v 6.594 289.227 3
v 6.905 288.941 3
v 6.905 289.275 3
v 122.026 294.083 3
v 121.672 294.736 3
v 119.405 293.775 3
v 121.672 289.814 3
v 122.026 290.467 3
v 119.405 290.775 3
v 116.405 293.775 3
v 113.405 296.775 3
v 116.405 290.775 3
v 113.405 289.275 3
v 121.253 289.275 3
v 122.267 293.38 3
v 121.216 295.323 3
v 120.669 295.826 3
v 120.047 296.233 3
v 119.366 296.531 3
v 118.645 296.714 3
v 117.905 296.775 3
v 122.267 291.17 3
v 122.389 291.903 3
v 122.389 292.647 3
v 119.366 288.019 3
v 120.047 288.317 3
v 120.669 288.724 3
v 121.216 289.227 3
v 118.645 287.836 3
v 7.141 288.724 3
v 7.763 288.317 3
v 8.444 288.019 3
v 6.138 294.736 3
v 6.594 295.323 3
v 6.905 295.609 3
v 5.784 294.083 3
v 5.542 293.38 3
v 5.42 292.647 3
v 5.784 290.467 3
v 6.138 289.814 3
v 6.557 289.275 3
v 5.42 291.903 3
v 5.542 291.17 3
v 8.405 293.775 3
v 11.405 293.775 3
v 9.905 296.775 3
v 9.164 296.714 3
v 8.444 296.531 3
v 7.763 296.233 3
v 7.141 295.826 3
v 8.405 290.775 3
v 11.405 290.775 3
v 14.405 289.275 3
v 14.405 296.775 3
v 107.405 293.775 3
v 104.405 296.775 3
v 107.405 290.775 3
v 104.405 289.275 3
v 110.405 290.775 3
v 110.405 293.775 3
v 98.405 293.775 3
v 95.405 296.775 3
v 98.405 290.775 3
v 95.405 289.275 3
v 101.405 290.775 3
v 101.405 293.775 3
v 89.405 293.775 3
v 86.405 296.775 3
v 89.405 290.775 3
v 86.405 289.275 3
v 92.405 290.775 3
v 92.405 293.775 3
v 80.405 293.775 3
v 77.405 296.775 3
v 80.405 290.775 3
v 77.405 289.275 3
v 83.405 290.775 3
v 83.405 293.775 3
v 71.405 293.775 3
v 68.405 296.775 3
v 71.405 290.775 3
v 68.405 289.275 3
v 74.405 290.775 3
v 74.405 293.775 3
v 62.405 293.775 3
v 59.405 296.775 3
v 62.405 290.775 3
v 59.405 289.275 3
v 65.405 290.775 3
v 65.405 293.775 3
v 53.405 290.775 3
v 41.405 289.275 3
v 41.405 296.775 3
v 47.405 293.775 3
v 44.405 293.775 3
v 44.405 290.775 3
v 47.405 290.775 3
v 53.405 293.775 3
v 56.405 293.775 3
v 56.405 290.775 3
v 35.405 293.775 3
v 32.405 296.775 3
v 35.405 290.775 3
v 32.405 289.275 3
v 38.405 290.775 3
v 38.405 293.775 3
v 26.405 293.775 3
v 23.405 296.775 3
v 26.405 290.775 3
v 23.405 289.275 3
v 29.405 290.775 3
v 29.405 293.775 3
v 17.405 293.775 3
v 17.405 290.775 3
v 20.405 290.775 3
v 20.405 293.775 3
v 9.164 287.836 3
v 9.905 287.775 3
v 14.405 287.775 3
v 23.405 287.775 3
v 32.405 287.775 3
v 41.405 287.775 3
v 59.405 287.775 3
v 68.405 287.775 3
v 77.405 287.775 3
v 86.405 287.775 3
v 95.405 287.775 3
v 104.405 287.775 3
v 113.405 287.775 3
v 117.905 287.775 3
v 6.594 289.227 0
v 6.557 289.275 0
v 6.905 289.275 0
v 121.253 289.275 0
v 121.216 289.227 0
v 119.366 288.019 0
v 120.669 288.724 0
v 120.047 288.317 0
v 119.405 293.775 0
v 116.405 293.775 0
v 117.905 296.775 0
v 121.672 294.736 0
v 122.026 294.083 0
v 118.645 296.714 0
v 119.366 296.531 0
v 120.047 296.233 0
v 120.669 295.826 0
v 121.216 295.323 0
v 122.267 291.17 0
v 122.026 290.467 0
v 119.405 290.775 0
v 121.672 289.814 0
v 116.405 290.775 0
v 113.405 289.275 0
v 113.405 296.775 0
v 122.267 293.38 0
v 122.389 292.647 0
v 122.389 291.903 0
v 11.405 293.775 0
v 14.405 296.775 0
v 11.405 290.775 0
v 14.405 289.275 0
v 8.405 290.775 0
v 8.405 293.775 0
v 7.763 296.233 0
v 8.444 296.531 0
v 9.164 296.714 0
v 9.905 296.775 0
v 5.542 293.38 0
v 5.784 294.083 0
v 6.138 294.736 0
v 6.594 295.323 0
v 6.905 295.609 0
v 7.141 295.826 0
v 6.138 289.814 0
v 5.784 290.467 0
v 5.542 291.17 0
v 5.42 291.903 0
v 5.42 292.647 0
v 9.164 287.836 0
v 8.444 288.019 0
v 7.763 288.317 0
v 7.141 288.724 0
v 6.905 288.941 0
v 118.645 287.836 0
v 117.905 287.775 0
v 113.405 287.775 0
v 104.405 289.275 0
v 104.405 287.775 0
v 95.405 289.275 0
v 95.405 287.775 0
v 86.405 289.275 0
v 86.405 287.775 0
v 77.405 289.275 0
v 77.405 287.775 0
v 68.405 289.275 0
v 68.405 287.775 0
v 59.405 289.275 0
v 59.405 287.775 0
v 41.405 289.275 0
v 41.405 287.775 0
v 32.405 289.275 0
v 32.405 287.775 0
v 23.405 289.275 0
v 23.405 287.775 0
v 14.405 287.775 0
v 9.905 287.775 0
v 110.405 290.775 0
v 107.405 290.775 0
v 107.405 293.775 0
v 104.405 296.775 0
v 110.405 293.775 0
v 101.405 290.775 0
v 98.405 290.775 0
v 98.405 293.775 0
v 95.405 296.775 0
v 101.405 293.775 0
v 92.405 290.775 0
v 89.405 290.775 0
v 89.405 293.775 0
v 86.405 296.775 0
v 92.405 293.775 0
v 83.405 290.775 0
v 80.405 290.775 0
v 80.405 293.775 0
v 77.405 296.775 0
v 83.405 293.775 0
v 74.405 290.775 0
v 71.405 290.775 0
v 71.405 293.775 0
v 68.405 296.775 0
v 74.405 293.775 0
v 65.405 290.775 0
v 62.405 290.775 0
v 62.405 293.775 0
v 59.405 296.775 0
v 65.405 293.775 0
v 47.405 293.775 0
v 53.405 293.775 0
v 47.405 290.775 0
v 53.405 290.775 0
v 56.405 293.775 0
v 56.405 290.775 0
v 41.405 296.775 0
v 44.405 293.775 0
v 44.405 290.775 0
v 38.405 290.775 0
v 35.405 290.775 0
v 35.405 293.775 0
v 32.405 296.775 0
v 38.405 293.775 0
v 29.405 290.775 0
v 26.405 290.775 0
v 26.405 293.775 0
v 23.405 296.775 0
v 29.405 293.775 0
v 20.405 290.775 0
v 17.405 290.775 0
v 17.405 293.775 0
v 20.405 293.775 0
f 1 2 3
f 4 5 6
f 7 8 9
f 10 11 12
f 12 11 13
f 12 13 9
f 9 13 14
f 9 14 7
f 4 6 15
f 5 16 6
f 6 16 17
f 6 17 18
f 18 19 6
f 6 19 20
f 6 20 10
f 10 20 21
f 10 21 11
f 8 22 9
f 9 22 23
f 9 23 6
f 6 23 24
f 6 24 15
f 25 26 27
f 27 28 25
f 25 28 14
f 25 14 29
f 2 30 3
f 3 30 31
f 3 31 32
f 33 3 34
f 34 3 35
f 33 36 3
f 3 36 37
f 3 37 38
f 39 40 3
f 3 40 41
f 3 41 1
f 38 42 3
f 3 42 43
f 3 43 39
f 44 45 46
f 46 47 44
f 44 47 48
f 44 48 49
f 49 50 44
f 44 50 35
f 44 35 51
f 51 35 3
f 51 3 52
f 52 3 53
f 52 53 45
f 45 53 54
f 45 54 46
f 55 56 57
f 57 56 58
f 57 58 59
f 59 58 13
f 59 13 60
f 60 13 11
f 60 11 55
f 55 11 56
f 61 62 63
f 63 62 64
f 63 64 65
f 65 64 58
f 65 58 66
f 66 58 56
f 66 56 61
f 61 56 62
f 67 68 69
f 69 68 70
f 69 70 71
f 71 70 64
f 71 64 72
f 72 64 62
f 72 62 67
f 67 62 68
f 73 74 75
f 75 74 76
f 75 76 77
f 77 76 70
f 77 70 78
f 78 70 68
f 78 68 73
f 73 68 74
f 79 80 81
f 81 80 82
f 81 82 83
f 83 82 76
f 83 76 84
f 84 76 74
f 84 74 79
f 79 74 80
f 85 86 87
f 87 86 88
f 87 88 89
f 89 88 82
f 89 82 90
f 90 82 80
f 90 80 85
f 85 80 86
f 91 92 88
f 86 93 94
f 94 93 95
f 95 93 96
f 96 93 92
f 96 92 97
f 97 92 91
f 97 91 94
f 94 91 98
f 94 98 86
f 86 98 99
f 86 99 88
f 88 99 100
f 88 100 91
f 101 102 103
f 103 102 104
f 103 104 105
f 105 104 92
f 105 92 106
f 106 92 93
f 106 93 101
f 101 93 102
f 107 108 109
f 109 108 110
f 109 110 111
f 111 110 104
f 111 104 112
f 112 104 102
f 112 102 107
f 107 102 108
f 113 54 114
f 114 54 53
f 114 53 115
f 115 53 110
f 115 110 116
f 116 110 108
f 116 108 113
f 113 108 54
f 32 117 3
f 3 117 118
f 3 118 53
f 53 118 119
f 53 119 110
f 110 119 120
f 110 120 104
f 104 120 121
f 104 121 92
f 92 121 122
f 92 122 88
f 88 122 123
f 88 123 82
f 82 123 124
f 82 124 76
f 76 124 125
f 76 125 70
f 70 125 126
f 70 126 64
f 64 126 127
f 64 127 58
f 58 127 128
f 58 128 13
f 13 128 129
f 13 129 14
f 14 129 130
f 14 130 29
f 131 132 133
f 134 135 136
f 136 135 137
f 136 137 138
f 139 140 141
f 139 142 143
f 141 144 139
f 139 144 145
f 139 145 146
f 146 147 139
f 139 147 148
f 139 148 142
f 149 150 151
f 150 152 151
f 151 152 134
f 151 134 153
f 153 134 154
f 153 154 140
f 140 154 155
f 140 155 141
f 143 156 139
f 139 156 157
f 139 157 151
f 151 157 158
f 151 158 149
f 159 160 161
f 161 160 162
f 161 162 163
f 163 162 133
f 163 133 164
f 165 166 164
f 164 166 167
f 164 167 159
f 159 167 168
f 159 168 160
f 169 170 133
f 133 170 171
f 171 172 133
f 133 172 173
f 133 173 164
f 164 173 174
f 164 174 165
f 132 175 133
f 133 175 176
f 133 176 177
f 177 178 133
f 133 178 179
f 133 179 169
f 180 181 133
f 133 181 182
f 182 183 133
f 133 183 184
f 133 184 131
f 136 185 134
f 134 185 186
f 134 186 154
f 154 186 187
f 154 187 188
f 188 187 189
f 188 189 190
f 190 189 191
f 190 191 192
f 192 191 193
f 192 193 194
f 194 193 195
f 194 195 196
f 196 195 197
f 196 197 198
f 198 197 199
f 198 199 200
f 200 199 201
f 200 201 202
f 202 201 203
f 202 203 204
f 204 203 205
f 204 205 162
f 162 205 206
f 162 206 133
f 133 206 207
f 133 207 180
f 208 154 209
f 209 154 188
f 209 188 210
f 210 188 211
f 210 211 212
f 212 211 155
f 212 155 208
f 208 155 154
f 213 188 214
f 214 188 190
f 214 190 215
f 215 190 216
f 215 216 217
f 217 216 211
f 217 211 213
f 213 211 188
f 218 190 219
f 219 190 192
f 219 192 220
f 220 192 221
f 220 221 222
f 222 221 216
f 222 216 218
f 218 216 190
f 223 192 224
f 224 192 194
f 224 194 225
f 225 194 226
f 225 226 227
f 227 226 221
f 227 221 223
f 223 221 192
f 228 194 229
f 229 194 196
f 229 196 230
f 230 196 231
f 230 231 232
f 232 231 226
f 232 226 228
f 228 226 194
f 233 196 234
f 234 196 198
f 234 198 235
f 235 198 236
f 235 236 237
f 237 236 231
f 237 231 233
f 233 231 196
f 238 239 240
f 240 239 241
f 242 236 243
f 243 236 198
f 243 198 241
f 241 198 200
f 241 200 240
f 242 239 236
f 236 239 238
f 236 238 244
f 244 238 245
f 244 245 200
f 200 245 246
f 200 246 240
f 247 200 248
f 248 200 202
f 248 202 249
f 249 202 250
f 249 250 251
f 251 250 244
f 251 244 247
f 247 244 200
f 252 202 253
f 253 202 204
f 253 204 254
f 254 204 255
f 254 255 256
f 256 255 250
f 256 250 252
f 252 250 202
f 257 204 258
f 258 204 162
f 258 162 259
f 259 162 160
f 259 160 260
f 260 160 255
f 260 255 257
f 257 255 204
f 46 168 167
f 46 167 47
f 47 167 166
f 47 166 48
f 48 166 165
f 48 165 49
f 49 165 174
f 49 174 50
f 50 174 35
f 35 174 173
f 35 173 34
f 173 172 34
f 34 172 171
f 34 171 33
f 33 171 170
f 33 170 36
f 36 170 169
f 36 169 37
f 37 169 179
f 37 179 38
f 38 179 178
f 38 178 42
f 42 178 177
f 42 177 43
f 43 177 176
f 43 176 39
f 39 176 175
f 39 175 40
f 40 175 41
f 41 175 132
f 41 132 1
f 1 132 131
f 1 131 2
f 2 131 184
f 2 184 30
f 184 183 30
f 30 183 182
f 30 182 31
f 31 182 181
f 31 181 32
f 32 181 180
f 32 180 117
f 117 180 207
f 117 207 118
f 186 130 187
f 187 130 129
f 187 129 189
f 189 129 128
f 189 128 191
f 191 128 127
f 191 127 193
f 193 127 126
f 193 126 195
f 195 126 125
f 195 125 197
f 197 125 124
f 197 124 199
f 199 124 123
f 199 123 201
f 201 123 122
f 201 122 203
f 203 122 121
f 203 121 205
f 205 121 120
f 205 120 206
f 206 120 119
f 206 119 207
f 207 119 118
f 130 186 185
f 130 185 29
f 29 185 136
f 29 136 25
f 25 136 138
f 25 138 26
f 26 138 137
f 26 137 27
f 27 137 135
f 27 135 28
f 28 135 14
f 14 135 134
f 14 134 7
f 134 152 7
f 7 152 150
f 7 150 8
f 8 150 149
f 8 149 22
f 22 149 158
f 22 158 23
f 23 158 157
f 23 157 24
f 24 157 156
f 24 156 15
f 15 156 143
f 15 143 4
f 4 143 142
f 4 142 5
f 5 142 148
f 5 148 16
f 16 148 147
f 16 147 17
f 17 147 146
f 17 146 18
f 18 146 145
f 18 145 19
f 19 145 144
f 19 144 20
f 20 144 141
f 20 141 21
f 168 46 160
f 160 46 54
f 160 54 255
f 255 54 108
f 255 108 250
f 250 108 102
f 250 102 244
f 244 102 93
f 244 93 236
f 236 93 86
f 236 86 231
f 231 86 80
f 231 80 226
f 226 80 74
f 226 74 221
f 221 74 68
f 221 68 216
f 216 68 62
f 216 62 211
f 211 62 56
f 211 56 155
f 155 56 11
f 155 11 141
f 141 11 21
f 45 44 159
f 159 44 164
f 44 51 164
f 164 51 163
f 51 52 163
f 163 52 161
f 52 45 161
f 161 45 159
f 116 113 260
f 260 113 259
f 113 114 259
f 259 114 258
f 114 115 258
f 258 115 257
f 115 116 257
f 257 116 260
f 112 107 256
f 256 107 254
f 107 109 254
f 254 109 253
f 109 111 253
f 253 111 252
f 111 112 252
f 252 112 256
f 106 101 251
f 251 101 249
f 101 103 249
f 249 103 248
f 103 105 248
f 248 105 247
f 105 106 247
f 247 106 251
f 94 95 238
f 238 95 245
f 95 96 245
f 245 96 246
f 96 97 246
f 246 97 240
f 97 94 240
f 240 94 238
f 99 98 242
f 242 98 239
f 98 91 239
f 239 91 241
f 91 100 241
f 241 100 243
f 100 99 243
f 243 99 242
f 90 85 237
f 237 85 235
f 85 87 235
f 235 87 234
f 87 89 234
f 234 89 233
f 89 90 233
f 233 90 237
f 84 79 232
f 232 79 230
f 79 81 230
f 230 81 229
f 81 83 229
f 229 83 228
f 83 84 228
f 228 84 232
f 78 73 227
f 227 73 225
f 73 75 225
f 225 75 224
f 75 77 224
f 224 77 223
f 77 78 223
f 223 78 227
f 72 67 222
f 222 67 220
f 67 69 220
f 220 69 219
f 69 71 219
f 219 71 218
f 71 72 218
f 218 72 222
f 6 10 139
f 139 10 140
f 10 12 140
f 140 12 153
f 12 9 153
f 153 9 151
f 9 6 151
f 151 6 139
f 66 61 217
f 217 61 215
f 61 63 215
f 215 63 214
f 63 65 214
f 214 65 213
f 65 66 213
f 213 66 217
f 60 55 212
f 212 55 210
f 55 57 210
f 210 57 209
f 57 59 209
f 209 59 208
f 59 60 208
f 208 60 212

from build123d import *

# Parameters (mm, degrees)
MODEL_W                 = 3
MODEL_H                 = 3
SALIENTE_EXTRUIR1_DEPTH = 3


with BuildPart() as part:
    # Model → Saliente-Extruir1 (new body)
    with BuildSketch(Plane.XY):
        with BuildLine():
            Line((9.904781567, 296.774995526), (117.904781567, 296.774995526))
            ThreePointArc((117.904781567, 296.774995526), (122.404781567, 292.274995526), (117.904781567, 287.774995526))
            Line((117.904781567, 287.774995526), (9.904781567, 287.774995526))
            ThreePointArc((9.904781567, 287.774995526), (5.404781567, 292.274995526), (9.904781567, 296.774995526))
        make_face()
        with Locations((9.904781567, 292.274995526)):
            Rectangle(MODEL_W, MODEL_H, mode=Mode.SUBTRACT)
        with Locations((18.904781567, 292.274995526)):
            Rectangle(MODEL_W, MODEL_H, mode=Mode.SUBTRACT)
        with Locations((27.904781567, 292.274995526)):
            Rectangle(MODEL_W, MODEL_H, mode=Mode.SUBTRACT)
        with Locations((36.904781567, 292.274995526)):
            Rectangle(MODEL_W, MODEL_H, mode=Mode.SUBTRACT)
        with Locations((45.904781567, 292.274995526)):
            Rectangle(MODEL_W, MODEL_H, mode=Mode.SUBTRACT)
        with Locations((54.904781567, 292.274995526)):
            Rectangle(MODEL_W, MODEL_H, mode=Mode.SUBTRACT)
        with Locations((63.904781567, 292.274995526)):
            Rectangle(MODEL_W, MODEL_H, mode=Mode.SUBTRACT)
        with Locations((72.904781567, 292.274995526)):
            Rectangle(MODEL_W, MODEL_H, mode=Mode.SUBTRACT)
        with Locations((81.904781567, 292.274995526)):
            Rectangle(MODEL_W, MODEL_H, mode=Mode.SUBTRACT)
        with Locations((90.904781567, 292.274995526)):
            Rectangle(MODEL_W, MODEL_H, mode=Mode.SUBTRACT)
        with Locations((117.904781567, 292.274995526)):
            Rectangle(MODEL_W, MODEL_H, mode=Mode.SUBTRACT)
        with Locations((99.904781567, 292.274995526)):
            Rectangle(MODEL_W, MODEL_H, mode=Mode.SUBTRACT)
        with Locations((108.904781567, 292.274995526)):
            Rectangle(MODEL_W, MODEL_H, mode=Mode.SUBTRACT)
    extrude(amount=SALIENTE_EXTRUIR1_DEPTH)


solid = part.part
